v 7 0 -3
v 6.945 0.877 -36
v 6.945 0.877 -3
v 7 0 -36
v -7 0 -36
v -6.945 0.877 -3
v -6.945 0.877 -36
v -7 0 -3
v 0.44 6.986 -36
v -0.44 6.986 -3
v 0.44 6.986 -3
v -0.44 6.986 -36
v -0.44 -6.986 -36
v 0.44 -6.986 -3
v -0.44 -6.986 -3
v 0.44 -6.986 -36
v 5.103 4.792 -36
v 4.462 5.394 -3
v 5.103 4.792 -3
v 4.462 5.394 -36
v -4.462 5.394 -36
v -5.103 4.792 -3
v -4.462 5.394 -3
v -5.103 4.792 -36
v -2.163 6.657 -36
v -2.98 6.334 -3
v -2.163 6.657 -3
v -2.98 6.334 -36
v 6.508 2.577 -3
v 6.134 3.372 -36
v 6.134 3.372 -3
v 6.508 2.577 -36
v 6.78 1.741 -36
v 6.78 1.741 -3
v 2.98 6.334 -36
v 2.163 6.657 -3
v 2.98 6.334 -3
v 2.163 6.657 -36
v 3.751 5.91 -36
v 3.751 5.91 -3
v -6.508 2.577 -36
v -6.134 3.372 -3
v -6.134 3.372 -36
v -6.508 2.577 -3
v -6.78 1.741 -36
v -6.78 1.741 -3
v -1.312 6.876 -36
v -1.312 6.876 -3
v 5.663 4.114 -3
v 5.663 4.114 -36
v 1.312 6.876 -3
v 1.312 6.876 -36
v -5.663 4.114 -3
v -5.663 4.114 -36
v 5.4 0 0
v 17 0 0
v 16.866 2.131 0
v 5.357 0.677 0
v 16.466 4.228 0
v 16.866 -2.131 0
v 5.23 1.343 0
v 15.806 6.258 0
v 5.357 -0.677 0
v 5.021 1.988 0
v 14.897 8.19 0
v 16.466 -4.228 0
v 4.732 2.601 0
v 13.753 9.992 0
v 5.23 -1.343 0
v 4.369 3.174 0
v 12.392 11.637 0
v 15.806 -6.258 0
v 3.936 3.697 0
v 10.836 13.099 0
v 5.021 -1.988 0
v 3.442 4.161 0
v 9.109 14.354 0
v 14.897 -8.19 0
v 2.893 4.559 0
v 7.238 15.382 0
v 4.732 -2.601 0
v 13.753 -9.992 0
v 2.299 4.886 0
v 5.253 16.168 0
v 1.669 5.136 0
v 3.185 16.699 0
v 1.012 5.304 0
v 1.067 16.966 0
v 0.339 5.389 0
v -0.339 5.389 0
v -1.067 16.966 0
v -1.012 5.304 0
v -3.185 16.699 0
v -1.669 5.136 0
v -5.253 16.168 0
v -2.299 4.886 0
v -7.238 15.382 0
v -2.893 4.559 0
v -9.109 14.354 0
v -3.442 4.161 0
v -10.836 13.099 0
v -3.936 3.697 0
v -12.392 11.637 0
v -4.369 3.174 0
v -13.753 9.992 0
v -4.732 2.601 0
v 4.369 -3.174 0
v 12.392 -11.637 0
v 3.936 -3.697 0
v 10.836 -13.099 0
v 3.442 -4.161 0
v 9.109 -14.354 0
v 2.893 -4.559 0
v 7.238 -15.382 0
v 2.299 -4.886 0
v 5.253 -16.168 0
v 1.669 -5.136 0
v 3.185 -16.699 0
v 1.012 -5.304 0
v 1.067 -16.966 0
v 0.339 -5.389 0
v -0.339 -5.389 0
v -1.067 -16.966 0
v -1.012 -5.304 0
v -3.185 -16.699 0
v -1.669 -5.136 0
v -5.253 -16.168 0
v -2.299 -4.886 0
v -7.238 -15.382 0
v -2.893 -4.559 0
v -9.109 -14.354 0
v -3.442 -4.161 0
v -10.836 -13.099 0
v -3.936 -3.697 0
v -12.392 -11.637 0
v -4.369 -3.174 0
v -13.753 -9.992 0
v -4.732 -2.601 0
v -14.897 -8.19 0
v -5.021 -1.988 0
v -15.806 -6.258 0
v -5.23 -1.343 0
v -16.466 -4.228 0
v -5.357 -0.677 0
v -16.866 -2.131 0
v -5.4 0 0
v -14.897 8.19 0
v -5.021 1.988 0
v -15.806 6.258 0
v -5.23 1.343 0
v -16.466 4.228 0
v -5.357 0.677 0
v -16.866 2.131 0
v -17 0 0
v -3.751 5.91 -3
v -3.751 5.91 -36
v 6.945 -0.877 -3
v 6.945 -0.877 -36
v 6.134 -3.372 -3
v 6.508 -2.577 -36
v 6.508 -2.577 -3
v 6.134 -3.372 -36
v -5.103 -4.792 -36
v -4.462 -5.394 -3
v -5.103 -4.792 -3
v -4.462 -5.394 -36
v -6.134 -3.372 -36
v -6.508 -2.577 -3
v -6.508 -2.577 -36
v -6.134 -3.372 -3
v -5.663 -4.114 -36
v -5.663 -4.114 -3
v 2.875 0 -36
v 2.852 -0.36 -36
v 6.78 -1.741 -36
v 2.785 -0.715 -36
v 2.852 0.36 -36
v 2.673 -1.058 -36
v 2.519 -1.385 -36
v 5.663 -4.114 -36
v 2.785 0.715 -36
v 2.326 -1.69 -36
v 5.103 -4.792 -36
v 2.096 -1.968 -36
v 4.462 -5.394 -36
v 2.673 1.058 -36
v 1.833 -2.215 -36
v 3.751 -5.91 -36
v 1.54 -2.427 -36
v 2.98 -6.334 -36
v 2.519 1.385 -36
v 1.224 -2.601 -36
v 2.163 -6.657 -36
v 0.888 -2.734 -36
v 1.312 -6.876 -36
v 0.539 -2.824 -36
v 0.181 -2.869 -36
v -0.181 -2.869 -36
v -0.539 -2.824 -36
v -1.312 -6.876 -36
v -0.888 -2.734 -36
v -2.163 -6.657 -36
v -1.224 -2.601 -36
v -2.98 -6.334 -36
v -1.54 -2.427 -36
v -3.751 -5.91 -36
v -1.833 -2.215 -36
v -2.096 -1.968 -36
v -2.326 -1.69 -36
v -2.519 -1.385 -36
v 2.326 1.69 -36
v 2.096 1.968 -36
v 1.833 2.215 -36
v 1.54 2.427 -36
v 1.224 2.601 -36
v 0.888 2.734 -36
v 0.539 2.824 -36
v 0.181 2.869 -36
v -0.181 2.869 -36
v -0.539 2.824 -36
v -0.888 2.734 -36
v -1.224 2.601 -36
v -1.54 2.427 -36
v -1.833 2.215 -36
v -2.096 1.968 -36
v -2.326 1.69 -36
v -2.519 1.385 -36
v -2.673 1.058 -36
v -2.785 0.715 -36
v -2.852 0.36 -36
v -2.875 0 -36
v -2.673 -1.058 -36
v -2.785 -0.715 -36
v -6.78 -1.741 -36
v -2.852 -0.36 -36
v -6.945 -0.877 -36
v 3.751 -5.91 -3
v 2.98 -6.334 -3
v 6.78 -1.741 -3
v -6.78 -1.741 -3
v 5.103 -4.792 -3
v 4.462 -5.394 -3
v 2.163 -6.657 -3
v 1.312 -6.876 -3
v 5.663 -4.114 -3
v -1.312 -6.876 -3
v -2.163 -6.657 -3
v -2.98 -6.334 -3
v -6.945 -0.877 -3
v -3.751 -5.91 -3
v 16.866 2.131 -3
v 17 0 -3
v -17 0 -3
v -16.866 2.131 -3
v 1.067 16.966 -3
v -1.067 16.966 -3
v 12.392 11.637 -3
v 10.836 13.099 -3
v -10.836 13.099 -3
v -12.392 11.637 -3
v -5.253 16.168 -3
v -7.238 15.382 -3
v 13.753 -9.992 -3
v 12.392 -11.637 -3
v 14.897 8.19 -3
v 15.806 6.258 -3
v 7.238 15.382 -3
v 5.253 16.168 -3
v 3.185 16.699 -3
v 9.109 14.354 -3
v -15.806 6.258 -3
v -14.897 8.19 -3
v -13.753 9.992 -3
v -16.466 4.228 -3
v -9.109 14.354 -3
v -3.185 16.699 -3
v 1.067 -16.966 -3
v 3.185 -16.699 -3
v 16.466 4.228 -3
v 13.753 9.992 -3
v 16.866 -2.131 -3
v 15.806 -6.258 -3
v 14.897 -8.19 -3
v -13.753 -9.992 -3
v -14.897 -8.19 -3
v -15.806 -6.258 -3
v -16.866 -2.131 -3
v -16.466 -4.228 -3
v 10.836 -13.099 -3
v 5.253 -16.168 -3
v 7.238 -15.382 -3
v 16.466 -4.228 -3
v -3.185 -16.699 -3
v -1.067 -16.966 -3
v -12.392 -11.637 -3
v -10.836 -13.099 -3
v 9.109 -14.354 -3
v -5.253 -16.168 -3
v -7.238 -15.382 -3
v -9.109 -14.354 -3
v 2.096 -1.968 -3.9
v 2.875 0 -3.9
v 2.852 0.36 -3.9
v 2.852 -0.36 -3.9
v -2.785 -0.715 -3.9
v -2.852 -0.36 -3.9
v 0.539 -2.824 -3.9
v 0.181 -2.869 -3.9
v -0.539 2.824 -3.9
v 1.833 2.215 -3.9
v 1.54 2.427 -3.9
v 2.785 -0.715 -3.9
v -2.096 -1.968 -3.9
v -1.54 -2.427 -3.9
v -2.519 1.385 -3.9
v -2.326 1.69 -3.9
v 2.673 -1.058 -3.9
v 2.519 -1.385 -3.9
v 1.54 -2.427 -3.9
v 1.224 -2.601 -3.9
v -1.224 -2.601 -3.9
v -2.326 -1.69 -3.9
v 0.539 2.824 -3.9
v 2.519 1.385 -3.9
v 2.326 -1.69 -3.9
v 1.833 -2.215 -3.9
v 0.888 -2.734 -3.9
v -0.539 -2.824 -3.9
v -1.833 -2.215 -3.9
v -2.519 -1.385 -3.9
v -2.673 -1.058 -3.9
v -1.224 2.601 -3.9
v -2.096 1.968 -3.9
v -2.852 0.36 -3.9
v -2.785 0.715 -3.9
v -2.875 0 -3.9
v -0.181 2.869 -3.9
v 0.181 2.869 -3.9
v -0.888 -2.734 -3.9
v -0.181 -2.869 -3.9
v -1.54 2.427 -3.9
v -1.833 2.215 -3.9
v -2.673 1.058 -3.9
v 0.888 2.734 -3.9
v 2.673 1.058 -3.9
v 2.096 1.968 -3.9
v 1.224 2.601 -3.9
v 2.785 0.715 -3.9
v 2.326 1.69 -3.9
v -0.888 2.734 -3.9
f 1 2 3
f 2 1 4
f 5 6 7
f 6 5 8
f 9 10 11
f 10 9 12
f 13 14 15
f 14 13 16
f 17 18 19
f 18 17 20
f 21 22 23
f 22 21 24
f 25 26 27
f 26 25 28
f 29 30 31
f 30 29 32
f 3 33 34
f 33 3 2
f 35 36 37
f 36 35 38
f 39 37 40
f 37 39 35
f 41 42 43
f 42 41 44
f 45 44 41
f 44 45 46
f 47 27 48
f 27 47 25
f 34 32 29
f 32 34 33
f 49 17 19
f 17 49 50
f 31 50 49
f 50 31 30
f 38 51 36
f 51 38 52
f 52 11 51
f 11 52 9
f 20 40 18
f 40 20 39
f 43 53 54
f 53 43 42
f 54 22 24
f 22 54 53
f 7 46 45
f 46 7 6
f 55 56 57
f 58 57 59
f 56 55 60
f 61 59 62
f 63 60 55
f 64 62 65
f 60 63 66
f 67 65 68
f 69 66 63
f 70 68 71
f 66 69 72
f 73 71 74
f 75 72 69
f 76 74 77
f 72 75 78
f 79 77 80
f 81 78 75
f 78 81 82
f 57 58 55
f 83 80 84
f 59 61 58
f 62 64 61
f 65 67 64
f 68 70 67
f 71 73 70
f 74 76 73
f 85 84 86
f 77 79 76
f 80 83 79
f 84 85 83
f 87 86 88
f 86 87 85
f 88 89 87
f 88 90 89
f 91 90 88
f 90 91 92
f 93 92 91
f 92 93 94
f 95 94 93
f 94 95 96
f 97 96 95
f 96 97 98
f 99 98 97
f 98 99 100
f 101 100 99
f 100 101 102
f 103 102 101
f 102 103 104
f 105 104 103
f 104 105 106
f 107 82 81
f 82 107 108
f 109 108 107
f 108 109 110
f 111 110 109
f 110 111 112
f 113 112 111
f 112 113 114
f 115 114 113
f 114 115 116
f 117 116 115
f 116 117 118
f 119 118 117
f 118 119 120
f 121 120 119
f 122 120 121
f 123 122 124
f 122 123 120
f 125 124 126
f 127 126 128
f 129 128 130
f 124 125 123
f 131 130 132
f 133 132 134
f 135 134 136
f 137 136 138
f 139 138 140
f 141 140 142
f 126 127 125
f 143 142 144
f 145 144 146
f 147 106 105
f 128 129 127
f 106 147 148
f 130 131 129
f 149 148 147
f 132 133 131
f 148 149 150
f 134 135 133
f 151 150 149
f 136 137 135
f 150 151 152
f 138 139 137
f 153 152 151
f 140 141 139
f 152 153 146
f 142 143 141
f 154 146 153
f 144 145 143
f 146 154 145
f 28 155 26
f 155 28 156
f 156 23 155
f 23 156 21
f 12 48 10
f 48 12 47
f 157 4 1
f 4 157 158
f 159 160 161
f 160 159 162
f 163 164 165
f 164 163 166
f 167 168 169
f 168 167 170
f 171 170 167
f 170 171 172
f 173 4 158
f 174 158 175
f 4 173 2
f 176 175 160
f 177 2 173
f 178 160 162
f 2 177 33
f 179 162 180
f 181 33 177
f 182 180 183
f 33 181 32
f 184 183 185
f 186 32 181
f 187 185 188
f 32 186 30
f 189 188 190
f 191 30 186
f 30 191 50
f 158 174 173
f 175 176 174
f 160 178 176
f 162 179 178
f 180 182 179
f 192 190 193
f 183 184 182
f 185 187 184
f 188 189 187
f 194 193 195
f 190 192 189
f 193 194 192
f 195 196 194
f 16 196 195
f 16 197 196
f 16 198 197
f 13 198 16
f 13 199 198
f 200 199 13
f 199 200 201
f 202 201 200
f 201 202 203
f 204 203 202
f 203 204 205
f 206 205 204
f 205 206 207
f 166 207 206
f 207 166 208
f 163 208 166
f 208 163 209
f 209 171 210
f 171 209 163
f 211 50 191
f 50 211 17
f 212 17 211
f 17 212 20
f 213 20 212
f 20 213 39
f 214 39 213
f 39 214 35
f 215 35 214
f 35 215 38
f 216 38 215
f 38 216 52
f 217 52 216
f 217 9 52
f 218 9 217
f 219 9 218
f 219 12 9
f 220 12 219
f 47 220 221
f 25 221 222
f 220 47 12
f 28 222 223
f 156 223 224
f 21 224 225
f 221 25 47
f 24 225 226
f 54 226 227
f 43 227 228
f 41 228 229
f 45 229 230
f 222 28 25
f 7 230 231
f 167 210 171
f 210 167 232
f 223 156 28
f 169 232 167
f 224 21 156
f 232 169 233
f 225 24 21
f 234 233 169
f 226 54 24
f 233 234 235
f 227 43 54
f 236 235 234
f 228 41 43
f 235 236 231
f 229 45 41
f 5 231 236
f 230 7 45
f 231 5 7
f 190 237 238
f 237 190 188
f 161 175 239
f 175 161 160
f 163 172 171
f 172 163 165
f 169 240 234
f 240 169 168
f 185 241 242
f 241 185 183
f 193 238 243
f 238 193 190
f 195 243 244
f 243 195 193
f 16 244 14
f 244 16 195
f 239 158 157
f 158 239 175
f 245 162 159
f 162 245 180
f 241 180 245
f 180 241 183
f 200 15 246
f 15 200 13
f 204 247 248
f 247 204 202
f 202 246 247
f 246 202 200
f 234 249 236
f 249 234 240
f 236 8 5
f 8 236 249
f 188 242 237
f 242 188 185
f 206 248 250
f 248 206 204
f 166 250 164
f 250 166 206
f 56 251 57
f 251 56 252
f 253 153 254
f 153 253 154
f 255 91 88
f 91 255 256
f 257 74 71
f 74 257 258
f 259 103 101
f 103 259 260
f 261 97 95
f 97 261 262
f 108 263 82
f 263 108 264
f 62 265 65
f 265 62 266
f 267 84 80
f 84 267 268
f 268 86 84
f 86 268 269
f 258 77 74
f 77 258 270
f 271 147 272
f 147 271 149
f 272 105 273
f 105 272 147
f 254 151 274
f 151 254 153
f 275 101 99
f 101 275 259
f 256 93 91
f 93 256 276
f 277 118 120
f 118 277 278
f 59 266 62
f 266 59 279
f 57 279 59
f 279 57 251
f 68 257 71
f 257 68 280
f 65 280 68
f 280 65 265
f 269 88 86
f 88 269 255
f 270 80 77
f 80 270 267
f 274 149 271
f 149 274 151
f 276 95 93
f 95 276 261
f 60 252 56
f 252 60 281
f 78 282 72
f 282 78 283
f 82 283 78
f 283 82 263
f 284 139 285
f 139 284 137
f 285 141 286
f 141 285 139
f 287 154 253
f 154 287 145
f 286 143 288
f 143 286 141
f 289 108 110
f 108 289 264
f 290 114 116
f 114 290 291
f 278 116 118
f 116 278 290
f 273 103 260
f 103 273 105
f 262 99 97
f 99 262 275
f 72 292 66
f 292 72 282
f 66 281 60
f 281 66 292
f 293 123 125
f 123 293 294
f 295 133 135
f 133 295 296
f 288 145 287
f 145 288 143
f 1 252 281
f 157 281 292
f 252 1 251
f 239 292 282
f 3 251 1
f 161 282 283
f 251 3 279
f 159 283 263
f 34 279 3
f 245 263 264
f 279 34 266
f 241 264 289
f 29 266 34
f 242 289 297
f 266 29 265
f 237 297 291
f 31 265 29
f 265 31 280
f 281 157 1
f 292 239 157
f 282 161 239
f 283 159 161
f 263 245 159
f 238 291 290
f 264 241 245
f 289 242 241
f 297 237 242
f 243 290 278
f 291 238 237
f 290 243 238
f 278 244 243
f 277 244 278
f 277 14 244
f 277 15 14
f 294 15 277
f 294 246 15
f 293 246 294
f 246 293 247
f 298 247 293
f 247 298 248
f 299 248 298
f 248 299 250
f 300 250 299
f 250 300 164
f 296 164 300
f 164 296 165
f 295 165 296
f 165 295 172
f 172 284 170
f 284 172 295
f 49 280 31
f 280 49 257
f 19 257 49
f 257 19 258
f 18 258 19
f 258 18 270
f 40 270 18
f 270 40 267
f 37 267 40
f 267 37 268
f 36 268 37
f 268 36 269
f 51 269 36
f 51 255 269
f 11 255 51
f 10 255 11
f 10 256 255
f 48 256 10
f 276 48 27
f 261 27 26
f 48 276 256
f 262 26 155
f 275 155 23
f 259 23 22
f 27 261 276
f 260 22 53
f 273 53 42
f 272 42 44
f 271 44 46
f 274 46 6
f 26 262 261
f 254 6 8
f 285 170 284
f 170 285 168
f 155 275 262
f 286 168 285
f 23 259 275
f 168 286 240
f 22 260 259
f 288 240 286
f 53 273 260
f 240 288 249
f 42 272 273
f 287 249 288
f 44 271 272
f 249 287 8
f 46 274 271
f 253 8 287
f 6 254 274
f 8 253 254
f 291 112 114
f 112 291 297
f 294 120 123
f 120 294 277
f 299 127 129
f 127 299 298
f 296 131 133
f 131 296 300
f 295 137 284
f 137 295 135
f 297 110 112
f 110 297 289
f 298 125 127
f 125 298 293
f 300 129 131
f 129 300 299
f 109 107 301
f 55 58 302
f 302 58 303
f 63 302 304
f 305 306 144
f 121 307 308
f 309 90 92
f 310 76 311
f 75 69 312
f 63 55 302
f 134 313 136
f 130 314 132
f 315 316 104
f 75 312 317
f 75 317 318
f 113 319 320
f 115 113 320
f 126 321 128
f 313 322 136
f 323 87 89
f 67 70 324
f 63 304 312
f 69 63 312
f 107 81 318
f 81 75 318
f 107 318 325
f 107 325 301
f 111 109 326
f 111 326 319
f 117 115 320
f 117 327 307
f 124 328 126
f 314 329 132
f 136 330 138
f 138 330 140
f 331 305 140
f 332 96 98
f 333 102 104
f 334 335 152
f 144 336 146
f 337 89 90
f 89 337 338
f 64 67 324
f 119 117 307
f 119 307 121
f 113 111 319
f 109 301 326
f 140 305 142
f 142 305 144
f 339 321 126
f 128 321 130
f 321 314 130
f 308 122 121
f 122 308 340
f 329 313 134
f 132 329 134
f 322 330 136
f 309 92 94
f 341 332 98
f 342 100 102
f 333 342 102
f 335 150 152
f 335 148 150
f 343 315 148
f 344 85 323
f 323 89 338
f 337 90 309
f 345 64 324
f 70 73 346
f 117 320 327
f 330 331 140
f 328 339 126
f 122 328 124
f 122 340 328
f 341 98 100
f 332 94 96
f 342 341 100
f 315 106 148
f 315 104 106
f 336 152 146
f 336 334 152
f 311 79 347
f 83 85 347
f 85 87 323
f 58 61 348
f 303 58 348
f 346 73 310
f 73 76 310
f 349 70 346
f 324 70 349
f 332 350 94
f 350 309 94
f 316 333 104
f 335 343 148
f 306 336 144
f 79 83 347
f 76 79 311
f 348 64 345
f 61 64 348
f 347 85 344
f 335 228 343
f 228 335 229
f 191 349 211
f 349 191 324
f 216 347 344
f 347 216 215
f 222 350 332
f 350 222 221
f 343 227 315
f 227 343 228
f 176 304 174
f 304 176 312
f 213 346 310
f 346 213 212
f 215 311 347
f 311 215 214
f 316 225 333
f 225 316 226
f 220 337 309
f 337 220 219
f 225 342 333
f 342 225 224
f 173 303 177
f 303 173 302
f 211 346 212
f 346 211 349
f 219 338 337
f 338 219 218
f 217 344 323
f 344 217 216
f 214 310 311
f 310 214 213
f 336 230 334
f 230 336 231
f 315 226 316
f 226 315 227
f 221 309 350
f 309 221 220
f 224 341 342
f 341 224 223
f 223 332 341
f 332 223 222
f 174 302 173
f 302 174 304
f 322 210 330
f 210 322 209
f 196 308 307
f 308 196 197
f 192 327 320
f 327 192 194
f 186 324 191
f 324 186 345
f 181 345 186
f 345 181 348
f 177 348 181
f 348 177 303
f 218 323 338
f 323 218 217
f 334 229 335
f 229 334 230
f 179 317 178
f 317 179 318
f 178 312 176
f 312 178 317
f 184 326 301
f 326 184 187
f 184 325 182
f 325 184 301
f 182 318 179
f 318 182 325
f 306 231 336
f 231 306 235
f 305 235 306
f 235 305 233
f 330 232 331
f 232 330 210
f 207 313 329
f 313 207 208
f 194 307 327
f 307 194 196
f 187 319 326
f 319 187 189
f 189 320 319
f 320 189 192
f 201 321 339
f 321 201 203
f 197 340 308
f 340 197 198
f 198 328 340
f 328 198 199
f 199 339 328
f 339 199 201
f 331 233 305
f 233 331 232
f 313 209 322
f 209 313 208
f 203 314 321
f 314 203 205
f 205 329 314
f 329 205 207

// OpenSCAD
$fn = 50;


difference() {
	union() {
		translate(v = [0, 0, -36.0000000000]) {
			cylinder(h = 36, r = 7.0000000000);
		}
		translate(v = [0, 0, -3.0000000000]) {
			cylinder(h = 3, r = 17.0000000000);
		}
	}
	union() {
		translate(v = [0, 0, 0]) {
			rotate(a = [0, 0, 0]) {
				difference() {
					union() {
						#translate(v = [0, 0, -36.0000000000]) {
							cylinder(h = 36, r = 2.6000000000);
						}
						#translate(v = [0, 0, -3.9000000000]) {
							cylinder(h = 3.9000000000, r = 7.0000000000, r1 = 2.8750000000, r2 = 5.4000000000);
						}
						#translate(v = [0, 0, -36.0000000000]) {
							cylinder(h = 36, r = 2.8750000000);
						}
						#translate(v = [0, 0, -36.0000000000]) {
							cylinder(h = 36, r = 2.6000000000);
						}
					}
					union();
				}
			}
		}
	}
}
